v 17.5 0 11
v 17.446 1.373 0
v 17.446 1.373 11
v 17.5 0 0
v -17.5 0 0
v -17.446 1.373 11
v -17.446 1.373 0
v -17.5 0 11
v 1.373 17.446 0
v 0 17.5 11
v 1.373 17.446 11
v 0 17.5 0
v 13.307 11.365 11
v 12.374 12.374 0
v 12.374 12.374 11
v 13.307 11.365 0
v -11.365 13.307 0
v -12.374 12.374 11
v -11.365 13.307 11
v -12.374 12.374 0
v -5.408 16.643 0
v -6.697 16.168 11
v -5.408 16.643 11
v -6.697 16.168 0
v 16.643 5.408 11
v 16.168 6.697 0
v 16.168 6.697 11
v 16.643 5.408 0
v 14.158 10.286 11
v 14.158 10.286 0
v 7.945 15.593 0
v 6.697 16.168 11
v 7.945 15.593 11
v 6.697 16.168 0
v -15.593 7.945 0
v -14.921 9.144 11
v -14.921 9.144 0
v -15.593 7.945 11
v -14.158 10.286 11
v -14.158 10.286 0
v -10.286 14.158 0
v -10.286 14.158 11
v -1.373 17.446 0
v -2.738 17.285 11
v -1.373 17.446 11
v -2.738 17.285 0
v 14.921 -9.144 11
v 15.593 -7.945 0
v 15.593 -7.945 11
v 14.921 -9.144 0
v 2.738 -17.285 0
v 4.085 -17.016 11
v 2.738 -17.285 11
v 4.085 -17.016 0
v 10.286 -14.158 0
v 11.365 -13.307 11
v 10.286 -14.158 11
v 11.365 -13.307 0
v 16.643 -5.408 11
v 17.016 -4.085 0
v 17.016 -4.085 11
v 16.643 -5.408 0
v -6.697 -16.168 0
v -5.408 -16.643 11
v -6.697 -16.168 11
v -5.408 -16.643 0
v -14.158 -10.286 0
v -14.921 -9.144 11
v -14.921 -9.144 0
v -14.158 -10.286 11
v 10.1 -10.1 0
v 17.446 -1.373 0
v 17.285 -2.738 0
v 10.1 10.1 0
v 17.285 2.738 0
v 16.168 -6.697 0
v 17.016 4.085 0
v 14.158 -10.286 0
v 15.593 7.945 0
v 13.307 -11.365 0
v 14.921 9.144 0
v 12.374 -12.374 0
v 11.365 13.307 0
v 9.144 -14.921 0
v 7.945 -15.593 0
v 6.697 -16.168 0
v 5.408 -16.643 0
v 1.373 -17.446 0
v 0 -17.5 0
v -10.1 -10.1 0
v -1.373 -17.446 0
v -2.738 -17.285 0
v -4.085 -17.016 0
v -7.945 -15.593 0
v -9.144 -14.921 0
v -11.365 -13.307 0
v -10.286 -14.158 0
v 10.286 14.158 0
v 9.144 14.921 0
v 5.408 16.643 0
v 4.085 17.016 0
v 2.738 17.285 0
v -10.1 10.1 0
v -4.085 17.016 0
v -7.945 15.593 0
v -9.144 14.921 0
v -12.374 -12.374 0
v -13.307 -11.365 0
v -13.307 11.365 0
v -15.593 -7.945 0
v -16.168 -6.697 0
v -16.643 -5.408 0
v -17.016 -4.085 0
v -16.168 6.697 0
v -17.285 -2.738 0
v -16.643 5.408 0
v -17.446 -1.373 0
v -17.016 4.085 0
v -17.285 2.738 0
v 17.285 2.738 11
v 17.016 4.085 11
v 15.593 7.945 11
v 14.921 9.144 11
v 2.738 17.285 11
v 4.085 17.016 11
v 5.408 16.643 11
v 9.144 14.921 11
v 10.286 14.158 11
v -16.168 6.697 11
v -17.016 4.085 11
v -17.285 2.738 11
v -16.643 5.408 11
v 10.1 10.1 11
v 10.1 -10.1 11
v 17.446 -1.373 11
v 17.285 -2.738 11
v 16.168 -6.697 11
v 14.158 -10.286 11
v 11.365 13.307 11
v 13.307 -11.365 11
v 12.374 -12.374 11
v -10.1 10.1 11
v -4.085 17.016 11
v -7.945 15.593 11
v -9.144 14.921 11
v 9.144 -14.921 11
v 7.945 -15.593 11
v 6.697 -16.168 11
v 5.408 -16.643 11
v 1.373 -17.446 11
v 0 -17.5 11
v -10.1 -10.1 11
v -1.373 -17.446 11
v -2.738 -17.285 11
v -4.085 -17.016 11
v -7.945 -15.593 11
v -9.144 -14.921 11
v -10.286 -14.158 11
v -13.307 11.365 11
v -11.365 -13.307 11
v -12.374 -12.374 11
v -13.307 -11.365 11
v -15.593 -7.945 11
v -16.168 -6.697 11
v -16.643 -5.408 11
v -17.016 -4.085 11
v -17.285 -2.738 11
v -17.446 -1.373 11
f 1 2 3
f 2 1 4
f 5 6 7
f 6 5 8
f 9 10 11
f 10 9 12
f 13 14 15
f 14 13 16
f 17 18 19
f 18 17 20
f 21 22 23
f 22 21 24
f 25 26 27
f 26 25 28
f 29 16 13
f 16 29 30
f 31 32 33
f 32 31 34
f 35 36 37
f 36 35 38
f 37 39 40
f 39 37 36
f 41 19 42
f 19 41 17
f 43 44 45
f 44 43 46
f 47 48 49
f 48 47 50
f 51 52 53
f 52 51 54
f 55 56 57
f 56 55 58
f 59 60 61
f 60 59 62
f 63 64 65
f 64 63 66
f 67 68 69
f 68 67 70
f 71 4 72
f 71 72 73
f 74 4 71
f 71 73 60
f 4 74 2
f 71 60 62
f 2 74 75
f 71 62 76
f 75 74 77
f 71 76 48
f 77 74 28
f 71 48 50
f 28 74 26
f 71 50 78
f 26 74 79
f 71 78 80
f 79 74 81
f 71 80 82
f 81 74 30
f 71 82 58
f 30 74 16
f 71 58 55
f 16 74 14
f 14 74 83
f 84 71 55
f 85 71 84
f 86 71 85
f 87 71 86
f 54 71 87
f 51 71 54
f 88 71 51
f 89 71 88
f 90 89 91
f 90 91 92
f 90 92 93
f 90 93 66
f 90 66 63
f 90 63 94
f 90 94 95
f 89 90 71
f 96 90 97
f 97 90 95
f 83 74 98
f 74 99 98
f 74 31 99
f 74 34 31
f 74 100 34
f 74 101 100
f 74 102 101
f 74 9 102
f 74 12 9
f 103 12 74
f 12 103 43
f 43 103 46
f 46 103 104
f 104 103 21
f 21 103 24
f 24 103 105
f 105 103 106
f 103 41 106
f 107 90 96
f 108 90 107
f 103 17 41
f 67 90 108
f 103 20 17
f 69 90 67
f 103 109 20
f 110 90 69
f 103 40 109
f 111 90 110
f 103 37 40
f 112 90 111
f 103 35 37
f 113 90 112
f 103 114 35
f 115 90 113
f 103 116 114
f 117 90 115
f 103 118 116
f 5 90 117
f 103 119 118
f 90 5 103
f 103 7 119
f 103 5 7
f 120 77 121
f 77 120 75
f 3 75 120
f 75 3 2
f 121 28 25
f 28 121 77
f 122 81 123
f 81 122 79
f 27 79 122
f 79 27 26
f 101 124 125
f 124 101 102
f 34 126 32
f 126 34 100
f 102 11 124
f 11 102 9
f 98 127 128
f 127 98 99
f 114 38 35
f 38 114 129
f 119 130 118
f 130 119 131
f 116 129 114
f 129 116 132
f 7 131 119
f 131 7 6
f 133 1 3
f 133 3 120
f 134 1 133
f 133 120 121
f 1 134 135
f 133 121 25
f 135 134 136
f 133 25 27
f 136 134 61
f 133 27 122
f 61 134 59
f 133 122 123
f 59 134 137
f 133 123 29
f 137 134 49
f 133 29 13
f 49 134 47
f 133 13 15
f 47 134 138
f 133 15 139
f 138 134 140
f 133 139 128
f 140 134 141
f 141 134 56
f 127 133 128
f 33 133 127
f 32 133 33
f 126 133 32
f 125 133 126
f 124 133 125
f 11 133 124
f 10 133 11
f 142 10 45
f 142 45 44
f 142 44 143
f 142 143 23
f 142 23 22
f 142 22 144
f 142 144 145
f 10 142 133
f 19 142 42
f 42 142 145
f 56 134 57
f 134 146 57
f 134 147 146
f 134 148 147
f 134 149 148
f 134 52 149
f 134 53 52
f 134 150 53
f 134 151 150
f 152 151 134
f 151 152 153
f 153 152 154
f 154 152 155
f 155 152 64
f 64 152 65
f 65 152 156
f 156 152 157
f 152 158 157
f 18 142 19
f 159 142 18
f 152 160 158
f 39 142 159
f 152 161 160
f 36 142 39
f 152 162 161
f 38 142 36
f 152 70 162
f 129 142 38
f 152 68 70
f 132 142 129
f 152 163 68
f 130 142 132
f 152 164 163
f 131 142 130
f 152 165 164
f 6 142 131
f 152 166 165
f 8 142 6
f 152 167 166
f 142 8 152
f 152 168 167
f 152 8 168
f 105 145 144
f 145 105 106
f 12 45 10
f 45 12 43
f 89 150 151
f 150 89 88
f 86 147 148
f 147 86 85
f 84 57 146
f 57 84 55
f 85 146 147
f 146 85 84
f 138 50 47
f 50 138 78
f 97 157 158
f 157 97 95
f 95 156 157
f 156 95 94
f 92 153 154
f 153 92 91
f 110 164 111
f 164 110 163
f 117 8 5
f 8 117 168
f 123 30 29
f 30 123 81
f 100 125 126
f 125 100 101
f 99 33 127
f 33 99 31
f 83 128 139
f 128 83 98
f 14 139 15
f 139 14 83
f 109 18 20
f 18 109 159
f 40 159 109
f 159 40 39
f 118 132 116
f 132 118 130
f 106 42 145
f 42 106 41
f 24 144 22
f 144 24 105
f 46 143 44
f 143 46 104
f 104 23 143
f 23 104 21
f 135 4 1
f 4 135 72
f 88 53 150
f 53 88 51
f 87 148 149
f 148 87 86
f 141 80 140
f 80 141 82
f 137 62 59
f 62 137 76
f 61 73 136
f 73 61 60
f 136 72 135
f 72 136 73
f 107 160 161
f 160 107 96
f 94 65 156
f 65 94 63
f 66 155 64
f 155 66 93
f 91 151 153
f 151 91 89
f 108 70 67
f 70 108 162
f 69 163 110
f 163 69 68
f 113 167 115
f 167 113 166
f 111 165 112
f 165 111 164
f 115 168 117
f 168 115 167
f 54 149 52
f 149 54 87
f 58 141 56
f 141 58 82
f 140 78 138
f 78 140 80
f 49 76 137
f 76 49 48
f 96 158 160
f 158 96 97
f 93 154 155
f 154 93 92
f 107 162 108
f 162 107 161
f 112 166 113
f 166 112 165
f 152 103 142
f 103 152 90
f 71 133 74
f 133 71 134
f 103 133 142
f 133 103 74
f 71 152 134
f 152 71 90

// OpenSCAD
// file: _params.scad
// =========================================================================
// 공유 파라미터 (모든 개별 부품 파일에서 include)
// 메인 어셈블리: cup_z_x_catrage_frame_water_mic_anti_3030.scad 에서 추출
// 프레임: 600 × 420 × 700mm (3030 프로파일, Y=0 대칭)
// =========================================================================

$fn = 60;  // 부품 출력용 고해상도
GLOBAL_TOLERANCE = 0.2;

// --- [1] 하부 기성품 및 원통 파라미터 ---
X_RAIL_LEN = 290.0;
X_BLOCK_W = 30.0; X_BLOCK_L = 32.0;   // 신규 X슬라이더 블록 (폭 30mm × 길이 32mm)
X_PITCH_X = 20.0; X_PITCH_Y = 20.0;   // 체결 홀 피치 (20 × 20mm, M3 나사탭 4개)
X_RAIL_W = 30.0;  X_RAIL_H = 20.0;   // 레일 폭 30mm (레일 바닥~블록 윗면 높이 29mm 반영)
X_TOTAL_H = 29.0;                    // 레일 바닥에서 슬라이더 블록 윗면까지의 높이

MOTOR_W = 42.0;      MOTOR_PITCH = 31.0; MOTOR_HOLE_D = 3.5;    
MOTOR_BOSS_D = 22.0; MOTOR_BOSS_H = 2.0; SCREW_D = 8.0;         
MOT_BODY_L = 41.0;   SHAFT_L = 24.0;     // 실측 NEMA17 몸통 41mm / 축 돌출 24mm

CUP_ID = 99.5;  CUP_WALL = 5.0; CUP_OD = 110.0;     // 아크릴 원통 OD110/ID100
CUP_H = 180.0;   CAGE_H = 60.0;  FLOOR_H = 10.0; PISTON_H = 20.0;     

LIP_D = 30.0;    LIP_H = 5.0;    LEAK_DRAIN_D = 4.0;    
GUIDE_PIPE_D = 8.0; BUSHING_OD = 12.0; BUSHING_H = 8.0;       
DRAIN_RADIUS = 35.0; DRAIN_D = 8.0;        

Y_OFFSET = 85.0; BRKT_H = 12.0; BRKT_D = 122.0; BRKT_ID = 62.0; Z_MOUNT_PCD = 86.0;   

// --- [2] 아크릴 파이프 및 상부 카트리지 ---
ACRYL_ID = 100.0; ACRYL_T = 5.0; ACRYL_OD = ACRYL_ID + (ACRYL_T * 2);  // OD110 (아크릴집 106 재고없음 → 컵과 동일 규격)

REVOLVER_PCD = 240.0;     // 인접 카트리지 웹 9.8mm 확보 (OD110 대응, 230→240)
CARTRIDGE_OD = REVOLVER_PCD + ACRYL_OD + 8; 
TOP_PLATE_H = 15.0;       // 아크릴 15T 통판 (보스홀 단 깊이 10mm)

HUB_D = 60.0;            
SHAFT_D = 12.0;          
HUB_WALL = 4.0;          
HUB_H = 15.0;             // 아크릴 5T × 3장 적층 — 파이프 130mm 대응
POCKET_DEPTH = 5.0;
MID_HUB_Z = 63.5;          // 중단 허브 하면 Z (벨트 중심 Z=71.0mm 정렬, 풀리 상단 Z=75.0mm = 축상단-1mm)
UPPER_HUB_Z = 135.0;       // 상단 허브 하면 Z (전체 135+15=150 유지)
BOSS_OD = 35.0;
BOSS_H = 11.0;             // 보스11 + 와셔1 = 12, 리세스10 → 허브 2mm 공중

// --- [3] GT2 벨트 구동 시스템 ---
GT2_PITCH     = 2.0;
GT2_BELT_W    = 6.0;
BIG_PULLEY_TEETH = 566;
BIG_PULLEY_PD = BIG_PULLEY_TEETH * GT2_PITCH / PI;
BIG_PULLEY_OD = BIG_PULLEY_PD + 1.0;
SMALL_PULLEY_TEETH = 20;
SMALL_PULLEY_PD = SMALL_PULLEY_TEETH * GT2_PITCH / PI;
SMALL_PULLEY_OD = SMALL_PULLEY_PD + 1.0;

BELT_MOTOR_X = -300;
BELT_MOTOR_Y = -155.5;
BRKT_MOTOR_H = 25.0;
BRKT_MOTOR_W = 45.0;        // 브래킷 폭 45mm (프로파일 간섭 회피 복원)
SLOT_LEN = 10.0;
FLAG_W = 15.0;  FLAG_H = 8.0;  FLAG_T = 1.5;

X_POS_MEASURE = 170.0;   // 측정 브래킷 X좌표 (X_M~X_R 정중앙, X대칭)

// --- [4] 3030 프레임 경계 (600×430×700mm) ---
PF = 30;             // 3030 알루미늄 프로파일
WASHER_T = 1.0;     

X_L = -320;
X_M = 60;
X_R = 250;
Y_F = -210;          // 전방 (대칭: -210+30=-180, Y=0 중심)
Y_B = 180;           // 후방 (대칭: 180+30=210, Y=0 중심) — 메인파일과 동기화

Z_BOT = -480;
Z_RAIL = -322;
Z_MID = -TOP_PLATE_H - PF;
Z_TOP = 220;

SUPPORT_PILLAR_H = Z_TOP - PF;

SHAFT_SQ = 20;       // 2020 사각 회전축

// 사각 축 홀 크기
SQ = SHAFT_SQ + GLOBAL_TOLERANCE;  // 20.2mm

// --- 리볼버/컵 축 정렬 (보스홀=판 중심에 리볼버 정렬) ---
REVOLVER_CX = (X_L + X_M + PF)/2;        // 판 중심 = 보스홀 = 리볼버 회전축 (-115)
DROP_X      = REVOLVER_CX + REVOLVER_PCD/2;  // 링 드롭 / 컵 적재 축 (+5)

FLANGE_Z = 52.0;       // 모터 전면 안착 높이 (Z=52mm -> 축 상단 Z=76mm, 풀리 결합)

// --- [5] 모터 체결홀 (이미 제작 완료된 15T 상판 원본 도면 수치 100% 유지) ---
MOTOR_BOLT_PITCH     = 25.0;      // Y피치 (Y = ±12.5mm)
MOTOR_BOLT_X_NOMINAL = X_L + 55;  // 1열: 상판 좌단 55 (모터축 기준 +35mm = X=-265mm)
MOTOR_BOLT_X_SHIFT   = X_L + 40;  // 2열: 상판 좌단 40 (모터축 기준 +20mm = X=-280mm)

// 모터 마운트 볼트 카운터보어 (단볼트용 — 브래킷 두께 25 중 깊게 파냄)
MOTOR_CB_D     = 6.5;            // M3 캡볼트 머리 클리어런스
MOTOR_CB_DEPTH = 19;             // 카운터보어 깊이 (잔여 통과 6mm → M3×10 단볼트)
// main file
// =========================================================================
// [부품] 상단 허브 보스 (Upper Hub Boss) - 3D 프린트용
// 용도: 상단 허브 아크릴 레이저 가공 시 누락된 상부 보스 부분을 3D 프린터로 제작하여 부착
// 축 관통 정렬을 위해 2020 프로파일(사각 축)이 관통하는 구조
// 원점: 보스 하면 Z=0, 중심 = XY 원점
// =========================================================================
include <_params.scad>

// 외경: BOSS_OD (35mm)
// 높이: BOSS_H (11mm)
// 축 관통 홀 크기: SQ (20.2mm)

difference() {
    // 메인 원통
    cylinder(d=BOSS_OD, h=BOSS_H, $fn=80);
    
    // 사각 축 관통홀 (2020 프로파일용)
    translate([-SQ/2, -SQ/2, -0.5])
        cube([SQ, SQ, BOSS_H + 1]);
}
